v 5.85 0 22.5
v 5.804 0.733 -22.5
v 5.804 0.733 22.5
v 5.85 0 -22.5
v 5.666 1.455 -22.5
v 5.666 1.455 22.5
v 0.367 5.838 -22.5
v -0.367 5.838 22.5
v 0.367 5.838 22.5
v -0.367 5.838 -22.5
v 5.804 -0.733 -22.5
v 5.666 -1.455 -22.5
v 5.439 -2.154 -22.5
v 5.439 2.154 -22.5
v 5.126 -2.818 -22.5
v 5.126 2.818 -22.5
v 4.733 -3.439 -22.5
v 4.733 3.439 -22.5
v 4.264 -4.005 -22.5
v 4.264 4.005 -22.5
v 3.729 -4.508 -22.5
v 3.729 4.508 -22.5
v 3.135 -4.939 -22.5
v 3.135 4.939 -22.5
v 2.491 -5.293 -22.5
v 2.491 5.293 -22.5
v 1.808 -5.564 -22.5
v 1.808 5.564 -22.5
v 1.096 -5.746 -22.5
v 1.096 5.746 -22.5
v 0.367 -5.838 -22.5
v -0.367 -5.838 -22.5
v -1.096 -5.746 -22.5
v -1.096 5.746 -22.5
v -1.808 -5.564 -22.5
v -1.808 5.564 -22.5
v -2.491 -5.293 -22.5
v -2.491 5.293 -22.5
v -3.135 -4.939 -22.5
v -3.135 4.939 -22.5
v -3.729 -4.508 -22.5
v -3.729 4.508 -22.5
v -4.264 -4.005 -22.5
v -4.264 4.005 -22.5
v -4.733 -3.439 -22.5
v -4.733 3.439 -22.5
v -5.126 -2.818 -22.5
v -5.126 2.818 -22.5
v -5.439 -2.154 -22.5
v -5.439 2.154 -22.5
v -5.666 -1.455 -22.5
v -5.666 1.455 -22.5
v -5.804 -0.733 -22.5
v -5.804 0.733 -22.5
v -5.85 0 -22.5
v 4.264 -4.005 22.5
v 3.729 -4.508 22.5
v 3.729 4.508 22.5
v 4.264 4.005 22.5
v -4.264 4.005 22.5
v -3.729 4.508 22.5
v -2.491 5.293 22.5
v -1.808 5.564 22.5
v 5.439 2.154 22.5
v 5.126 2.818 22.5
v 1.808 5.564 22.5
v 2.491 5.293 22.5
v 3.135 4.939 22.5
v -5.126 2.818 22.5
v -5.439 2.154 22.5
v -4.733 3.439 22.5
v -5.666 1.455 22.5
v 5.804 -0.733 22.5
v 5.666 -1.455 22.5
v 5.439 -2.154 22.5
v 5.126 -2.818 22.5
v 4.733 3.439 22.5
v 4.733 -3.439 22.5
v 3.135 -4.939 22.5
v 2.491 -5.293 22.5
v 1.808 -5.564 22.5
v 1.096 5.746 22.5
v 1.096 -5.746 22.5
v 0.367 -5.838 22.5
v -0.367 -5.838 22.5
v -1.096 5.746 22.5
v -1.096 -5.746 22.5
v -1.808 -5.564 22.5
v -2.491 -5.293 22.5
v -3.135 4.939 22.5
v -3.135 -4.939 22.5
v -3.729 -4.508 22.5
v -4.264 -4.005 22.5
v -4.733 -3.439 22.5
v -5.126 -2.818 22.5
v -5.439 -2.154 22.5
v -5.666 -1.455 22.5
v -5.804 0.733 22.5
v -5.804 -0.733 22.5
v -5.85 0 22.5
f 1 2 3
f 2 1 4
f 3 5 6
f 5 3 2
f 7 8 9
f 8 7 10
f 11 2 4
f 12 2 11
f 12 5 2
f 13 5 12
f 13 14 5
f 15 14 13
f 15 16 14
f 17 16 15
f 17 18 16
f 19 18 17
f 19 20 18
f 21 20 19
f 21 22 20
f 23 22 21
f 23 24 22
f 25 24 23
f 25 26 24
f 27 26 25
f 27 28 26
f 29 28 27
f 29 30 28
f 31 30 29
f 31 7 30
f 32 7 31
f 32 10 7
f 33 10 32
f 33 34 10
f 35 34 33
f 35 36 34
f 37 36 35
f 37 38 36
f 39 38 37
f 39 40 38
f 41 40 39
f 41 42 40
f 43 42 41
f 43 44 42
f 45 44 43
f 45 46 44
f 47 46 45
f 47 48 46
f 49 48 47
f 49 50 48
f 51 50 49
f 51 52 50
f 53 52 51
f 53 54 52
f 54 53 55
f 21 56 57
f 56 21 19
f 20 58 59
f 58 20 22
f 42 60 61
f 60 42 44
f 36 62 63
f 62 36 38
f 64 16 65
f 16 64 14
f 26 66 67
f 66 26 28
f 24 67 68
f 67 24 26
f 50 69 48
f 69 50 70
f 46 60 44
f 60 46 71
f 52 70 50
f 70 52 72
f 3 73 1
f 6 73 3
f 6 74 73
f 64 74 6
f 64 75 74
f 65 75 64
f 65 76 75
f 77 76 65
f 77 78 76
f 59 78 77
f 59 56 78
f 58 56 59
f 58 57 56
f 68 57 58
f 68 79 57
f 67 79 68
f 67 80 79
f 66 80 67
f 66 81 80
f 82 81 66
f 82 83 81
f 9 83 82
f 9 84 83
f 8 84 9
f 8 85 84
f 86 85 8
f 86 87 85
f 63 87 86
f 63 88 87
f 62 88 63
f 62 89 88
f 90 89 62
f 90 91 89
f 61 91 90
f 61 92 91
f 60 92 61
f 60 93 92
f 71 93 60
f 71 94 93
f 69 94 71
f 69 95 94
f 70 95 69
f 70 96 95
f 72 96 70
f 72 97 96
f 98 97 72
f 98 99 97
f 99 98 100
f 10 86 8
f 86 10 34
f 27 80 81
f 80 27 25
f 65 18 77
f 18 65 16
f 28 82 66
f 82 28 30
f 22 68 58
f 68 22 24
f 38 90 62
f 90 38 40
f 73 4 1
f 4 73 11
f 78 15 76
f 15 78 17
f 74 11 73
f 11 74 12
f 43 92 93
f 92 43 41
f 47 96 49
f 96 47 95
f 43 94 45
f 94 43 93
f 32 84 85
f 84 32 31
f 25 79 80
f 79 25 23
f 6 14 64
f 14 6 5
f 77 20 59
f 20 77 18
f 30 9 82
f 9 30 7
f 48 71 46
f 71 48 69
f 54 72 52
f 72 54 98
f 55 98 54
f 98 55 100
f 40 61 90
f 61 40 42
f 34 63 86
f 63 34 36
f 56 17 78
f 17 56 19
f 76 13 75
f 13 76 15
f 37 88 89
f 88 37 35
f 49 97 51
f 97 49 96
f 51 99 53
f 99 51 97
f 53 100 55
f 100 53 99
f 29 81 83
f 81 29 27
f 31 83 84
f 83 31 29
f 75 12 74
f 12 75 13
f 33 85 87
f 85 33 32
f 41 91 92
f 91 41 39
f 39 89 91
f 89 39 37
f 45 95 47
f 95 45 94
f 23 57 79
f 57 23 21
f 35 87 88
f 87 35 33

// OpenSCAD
$fn = 50;


difference() {
	union() {
		translate(v = [0, 0, -22.5000000000]) {
			cylinder(h = 45, r = 5.8500000000);
		}
	}
	union() {
		translate(v = [0, 0, -100.0000000000]) {
			cylinder(h = 200, r = 0);
		}
	}
}
